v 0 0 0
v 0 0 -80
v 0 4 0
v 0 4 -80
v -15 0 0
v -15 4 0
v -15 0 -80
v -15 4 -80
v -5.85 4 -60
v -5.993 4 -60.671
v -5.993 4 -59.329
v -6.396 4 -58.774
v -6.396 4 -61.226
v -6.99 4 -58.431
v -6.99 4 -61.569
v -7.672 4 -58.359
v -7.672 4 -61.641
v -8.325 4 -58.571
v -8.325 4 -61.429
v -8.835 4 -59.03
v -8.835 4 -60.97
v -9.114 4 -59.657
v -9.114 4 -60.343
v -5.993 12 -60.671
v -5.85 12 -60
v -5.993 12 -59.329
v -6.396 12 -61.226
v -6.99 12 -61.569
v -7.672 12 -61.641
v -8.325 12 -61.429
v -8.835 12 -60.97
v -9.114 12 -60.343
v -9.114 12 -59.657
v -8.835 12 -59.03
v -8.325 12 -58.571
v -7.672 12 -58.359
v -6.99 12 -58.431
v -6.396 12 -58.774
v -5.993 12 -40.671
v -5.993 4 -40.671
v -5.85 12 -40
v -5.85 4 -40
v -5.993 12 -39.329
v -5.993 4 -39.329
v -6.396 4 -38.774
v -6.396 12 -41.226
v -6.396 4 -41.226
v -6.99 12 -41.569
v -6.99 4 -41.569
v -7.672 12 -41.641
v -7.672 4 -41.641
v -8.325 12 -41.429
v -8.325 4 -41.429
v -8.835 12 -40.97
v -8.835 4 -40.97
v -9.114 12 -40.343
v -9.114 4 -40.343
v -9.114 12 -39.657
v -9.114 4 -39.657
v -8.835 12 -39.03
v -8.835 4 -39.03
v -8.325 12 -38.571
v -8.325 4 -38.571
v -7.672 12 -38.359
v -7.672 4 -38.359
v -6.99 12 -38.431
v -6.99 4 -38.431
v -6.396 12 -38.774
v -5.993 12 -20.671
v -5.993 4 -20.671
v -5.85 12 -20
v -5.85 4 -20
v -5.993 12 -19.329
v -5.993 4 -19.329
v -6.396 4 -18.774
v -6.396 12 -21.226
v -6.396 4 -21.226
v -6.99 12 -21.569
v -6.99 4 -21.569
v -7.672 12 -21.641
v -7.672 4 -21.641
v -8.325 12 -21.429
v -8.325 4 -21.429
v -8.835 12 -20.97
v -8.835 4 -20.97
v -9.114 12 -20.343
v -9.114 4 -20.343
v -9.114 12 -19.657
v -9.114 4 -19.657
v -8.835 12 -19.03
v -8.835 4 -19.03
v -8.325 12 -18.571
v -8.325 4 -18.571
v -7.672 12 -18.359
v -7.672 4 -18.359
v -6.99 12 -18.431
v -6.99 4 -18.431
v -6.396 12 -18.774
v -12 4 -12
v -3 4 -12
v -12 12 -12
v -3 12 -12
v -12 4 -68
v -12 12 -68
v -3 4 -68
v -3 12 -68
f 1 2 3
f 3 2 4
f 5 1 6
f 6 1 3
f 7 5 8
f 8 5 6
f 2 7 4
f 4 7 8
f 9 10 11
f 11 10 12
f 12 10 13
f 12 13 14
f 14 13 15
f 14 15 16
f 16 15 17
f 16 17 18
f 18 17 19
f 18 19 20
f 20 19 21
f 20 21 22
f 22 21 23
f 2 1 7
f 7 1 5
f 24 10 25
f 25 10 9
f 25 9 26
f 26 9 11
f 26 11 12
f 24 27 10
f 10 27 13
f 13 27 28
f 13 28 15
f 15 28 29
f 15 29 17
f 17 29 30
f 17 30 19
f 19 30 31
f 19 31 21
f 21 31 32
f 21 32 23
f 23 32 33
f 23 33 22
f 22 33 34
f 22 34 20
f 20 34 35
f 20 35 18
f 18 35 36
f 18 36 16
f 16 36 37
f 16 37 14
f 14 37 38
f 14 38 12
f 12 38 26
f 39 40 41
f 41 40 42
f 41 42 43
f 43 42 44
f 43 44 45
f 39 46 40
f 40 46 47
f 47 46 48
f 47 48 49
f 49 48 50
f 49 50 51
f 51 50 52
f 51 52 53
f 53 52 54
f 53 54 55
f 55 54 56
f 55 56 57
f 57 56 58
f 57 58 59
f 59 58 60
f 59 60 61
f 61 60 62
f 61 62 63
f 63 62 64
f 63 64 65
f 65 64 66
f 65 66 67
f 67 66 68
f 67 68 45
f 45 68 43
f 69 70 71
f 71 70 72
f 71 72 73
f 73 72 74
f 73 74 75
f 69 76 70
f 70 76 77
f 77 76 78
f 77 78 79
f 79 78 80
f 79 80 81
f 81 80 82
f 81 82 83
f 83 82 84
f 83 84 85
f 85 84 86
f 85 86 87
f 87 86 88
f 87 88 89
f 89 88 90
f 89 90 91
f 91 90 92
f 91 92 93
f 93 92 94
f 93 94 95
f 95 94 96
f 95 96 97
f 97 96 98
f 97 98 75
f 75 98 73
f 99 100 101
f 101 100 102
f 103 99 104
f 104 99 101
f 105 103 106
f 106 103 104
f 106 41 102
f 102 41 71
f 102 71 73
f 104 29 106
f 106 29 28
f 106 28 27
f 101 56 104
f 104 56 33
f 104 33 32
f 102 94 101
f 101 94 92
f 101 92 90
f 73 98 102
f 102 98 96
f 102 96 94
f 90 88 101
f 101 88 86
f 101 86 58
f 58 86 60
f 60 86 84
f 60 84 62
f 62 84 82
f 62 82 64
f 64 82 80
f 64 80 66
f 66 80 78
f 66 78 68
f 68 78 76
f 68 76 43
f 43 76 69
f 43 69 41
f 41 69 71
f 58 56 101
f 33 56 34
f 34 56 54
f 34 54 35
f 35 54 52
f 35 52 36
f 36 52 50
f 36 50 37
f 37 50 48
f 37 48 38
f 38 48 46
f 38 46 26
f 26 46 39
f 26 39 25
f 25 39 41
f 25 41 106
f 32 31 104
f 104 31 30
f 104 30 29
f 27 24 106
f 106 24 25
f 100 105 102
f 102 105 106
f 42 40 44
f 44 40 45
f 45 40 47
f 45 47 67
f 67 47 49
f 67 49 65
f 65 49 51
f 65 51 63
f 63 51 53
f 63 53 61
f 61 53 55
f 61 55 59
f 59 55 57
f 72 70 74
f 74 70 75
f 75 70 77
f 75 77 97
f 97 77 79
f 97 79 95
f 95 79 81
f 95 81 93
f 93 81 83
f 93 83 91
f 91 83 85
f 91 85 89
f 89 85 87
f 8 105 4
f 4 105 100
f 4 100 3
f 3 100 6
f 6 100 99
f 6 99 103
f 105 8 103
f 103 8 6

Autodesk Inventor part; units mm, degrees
ref_plane "YZ Plane" through (0, 0, 0) normal (1, 0, 0) x (0, 1, 0)
ref_plane "XZ Plane" through (0, 0, 0) normal (0, 1, 0) x (-1, 0, 0)
ref_plane "XY Plane" through (0, 0, 0) normal (0, 0, 1) x (1, 0, 0)
sketch "Sketch1" plane through (0, 0, 0) normal (0, 1, 0) x (-1, 0, 0)
  line L0 (0, 0) -> (15, 0)
  line L1 (15, 0) -> (15, -80)
  line L2 (15, -80) -> (0, -80)
  line L3 (0, -80) -> (0, 0)
  dimension "d0" = 15
  dimension "d1" = 80
extrude "Extrusion1" add sketch "Sketch1" along normal blind 4
sketch "Sketch2" plane through (0, 4, 0) normal (0, 1, 0) x (1, 0, 0)
  line L0 (-15, 80) -> (-15, 0) projected
  line L1 (0, 0) -> (0, 80) projected
  line L2 (-15, 80) -> (0, 80)
  line L3 (0, 80) -> (0, 0)
  line L4 (0, 0) -> (-15, 0)
  line L5 (-15, 0) -> (-15, 80)
  line L6 (-15, 0) -> (0, 0) projected
  line L7 (-15, 80) -> (-7.5, 80)
  line L8 (-7.5, 80) -> (-7.5, 0)
  line L9 (-7.5, 0) -> (-15, 0)
  line L10 (-15, 0) -> (-15, 80)
  line L11 (-7.5, 0) -> (-7.5, 20)
  line L12 (-7.5, 20) -> (-7.5, 40)
  line L13 (-7.5, 40) -> (-7.5, 60)
  circle A0 centre (-7.5, 60) radius 1.65
  circle A1 centre (-7.5, 40) radius 1.65
  circle A2 centre (-7.5, 20) radius 1.65
  line L14 (-7.5, 80) -> (-7.5, 68)
  line L15 (-7.5, 0) -> (-7.5, 12)
  line L16 (-12, 68) -> (-3, 68)
  line L17 (-3, 68) -> (-3, 12)
  line L18 (-3, 12) -> (-12, 12)
  line L19 (-12, 12) -> (-12, 68)
  dimension "d4" = 20
  dimension "d5" = 20
  dimension "d6" = 20
  dimension "d7" = 3.3
  dimension "d8" = 3.3
  dimension "d9" = 3.3
  dimension "d10" = 12
  dimension "d11" = 12
  dimension "d12" = 9
extrude "Extrusion2" add sketch "Sketch2" along normal blind 8 contours L16 L17 L18 L8 A2 A1 A0 | L8 A0 A1 A2 L18 L19 L16
sketch "Sketch3" plane through (-3, 4, -12) normal (1, 0, 0) x (0, 0, -1)
  point P0 (-12, -4)
properties part number "Pin holder"
